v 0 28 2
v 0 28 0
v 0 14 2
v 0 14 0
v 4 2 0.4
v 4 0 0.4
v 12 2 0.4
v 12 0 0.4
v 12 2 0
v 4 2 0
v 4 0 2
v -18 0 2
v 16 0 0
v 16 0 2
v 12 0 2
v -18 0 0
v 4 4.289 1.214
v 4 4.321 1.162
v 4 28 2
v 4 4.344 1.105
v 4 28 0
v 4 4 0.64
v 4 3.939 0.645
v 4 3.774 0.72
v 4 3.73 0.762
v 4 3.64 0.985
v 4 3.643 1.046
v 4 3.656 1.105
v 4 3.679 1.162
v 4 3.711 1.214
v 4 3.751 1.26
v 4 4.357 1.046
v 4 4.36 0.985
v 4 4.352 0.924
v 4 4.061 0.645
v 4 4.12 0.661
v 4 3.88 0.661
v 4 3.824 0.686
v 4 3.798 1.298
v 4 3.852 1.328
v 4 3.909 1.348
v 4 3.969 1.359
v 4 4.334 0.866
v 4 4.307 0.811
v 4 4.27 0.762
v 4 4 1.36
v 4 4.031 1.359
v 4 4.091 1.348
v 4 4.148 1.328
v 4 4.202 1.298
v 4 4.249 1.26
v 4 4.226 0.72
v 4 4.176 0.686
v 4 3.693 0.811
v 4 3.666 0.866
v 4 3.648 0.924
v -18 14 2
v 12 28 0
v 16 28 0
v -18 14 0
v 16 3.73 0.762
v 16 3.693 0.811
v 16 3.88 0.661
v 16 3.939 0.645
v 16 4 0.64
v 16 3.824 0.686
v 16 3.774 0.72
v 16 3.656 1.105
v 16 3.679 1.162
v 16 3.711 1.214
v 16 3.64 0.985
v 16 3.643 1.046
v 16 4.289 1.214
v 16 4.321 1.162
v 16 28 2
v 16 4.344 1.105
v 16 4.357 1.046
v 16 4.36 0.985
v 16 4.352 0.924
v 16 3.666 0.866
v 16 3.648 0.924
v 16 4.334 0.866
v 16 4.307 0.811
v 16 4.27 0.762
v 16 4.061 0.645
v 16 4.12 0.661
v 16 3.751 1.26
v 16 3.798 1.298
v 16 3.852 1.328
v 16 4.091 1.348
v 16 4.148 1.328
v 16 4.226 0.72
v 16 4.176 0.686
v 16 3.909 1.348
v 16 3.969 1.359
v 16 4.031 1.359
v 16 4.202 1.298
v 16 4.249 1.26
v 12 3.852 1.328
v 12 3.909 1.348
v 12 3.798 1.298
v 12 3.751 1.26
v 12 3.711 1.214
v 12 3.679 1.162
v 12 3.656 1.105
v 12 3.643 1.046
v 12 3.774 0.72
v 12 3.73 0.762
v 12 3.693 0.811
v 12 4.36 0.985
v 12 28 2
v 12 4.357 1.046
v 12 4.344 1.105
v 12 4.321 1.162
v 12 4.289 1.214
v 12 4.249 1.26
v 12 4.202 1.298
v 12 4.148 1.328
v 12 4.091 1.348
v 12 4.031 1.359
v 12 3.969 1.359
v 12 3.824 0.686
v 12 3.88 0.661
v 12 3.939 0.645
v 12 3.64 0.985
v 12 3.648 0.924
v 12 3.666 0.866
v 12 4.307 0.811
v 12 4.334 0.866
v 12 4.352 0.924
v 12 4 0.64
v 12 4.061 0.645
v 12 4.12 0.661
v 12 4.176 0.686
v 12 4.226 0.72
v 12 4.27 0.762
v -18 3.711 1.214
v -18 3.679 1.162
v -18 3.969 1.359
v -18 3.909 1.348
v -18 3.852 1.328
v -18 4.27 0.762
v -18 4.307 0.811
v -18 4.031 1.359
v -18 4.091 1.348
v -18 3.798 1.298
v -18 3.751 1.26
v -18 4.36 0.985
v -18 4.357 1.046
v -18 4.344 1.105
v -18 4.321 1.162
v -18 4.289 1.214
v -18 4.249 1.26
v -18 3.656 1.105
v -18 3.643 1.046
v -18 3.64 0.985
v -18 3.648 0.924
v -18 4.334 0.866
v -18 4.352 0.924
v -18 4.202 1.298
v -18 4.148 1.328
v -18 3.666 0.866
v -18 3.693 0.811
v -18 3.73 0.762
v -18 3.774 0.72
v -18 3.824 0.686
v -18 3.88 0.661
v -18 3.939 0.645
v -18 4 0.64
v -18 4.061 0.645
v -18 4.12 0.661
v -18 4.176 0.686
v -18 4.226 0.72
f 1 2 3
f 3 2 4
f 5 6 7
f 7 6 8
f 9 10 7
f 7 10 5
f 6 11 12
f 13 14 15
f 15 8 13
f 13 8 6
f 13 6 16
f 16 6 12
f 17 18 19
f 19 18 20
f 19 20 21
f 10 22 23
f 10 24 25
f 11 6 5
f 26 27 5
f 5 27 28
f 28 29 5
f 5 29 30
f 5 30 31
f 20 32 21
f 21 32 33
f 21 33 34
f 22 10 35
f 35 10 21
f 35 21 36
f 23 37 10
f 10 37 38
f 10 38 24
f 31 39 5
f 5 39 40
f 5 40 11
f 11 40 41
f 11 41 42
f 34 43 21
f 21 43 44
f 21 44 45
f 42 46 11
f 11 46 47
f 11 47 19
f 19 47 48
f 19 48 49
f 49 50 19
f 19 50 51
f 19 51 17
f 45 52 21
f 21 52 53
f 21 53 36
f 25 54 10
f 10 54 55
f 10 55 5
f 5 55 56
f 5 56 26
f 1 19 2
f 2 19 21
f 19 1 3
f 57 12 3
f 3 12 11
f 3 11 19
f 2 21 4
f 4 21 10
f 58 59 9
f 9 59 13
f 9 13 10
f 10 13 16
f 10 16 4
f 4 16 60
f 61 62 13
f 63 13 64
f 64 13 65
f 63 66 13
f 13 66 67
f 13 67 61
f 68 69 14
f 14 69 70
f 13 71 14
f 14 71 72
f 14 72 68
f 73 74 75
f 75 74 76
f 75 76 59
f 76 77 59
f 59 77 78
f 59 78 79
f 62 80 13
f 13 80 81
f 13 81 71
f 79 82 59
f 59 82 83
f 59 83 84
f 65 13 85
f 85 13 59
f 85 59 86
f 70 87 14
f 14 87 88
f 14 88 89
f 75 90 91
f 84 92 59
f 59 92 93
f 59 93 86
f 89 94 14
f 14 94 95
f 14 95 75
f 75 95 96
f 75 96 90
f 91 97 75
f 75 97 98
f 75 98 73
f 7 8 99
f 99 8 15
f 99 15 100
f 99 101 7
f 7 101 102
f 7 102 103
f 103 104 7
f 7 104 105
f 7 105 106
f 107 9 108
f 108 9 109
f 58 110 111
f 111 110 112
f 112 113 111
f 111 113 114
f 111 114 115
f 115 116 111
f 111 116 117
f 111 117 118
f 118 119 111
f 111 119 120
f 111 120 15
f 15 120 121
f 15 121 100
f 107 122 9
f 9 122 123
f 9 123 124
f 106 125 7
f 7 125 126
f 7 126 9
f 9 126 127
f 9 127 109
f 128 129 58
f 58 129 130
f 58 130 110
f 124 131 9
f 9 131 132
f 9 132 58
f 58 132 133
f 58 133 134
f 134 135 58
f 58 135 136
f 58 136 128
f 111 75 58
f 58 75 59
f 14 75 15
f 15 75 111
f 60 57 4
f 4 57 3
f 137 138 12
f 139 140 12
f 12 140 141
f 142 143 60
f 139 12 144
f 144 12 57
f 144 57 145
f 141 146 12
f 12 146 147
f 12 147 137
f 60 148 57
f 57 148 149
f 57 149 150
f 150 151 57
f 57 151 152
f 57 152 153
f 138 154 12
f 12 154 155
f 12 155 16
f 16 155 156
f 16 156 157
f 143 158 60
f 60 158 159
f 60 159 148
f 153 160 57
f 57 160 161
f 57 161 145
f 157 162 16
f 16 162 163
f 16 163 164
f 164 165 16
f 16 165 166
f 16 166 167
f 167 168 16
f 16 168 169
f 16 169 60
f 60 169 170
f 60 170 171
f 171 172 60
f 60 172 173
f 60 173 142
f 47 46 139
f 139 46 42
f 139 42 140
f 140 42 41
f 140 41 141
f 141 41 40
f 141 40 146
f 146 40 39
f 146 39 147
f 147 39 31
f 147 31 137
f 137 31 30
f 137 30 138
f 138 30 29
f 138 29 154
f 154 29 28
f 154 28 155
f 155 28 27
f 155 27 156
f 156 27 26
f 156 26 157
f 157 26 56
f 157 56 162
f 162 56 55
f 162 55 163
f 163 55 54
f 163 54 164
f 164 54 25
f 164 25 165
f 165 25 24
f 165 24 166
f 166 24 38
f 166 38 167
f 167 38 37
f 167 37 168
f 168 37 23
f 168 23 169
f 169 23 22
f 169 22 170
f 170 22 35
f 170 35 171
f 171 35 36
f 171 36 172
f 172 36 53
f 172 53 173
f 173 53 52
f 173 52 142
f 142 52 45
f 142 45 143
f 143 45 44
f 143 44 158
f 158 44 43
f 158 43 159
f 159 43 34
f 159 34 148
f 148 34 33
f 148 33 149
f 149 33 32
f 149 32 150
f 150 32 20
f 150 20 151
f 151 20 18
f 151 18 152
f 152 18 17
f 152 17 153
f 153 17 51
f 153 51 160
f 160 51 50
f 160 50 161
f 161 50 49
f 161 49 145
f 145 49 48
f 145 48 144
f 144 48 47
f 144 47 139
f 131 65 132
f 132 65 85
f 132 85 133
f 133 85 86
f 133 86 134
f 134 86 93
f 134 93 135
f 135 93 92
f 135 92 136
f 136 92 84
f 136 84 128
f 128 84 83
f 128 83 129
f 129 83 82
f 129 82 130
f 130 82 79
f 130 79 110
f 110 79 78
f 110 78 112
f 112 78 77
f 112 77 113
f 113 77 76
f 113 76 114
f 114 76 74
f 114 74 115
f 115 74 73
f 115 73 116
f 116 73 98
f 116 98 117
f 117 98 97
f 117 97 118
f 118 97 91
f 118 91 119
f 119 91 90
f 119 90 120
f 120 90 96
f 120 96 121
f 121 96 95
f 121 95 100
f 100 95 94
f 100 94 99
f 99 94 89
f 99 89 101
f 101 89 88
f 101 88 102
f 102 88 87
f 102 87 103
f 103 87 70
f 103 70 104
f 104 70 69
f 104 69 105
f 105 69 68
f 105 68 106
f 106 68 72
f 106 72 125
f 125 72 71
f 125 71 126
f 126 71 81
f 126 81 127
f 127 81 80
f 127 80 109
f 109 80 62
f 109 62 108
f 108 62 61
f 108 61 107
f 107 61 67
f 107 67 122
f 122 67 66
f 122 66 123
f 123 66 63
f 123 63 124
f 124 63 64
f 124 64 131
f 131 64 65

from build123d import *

# Parameters (mm, degrees)
SKETCH2_W             = 4
SKETCH2_H             = 28
BOSS_EXTRUDE1_DEPTH   = 2
BOSS_EXTRUDE1_2_DEPTH = 2
SKETCH3_W             = 16
SKETCH3_H             = 2
BOSS_EXTRUDE2_DEPTH   = 0.4
SKETCH7_W             = 2
SKETCH7_H             = 14
BOSS_EXTRUDE3_DEPTH   = 18
SKETCH6_R             = 0.36
CUT_EXTRUDE1_DEPTH    = 35


with BuildPart() as part:
    # Sketch2 → Boss-Extrude1 (new body)
    with BuildSketch(Plane.XY):
        with Locations((2, 14)):
            Rectangle(SKETCH2_W, SKETCH2_H)
    extrude(amount=BOSS_EXTRUDE1_DEPTH)



with BuildPart() as body_2:
    # Sketch2 → Boss-Extrude1 2 (new body)
    with BuildSketch(Plane.XY):
        with Locations((14, 14)):
            Rectangle(SKETCH2_W, SKETCH2_H)
    extrude(amount=BOSS_EXTRUDE1_2_DEPTH)


with BuildPart() as part_1:
    add(part.part)

    add(body_2.part)  # Boss-Extrude2 merges body 2
    # Sketch3 → Boss-Extrude2 (add)
    with BuildSketch(Plane(origin=(0, 0, 0), x_dir=(-1, 0, 0), z_dir=(0, 0, -1))):
        with Locations((-8, 1)):
            Rectangle(SKETCH3_W, SKETCH3_H)
    extrude(amount=-BOSS_EXTRUDE2_DEPTH)

    # Sketch7 → Boss-Extrude3 (add)
    with BuildSketch(Plane.ZY):
        with Locations((1, 7)):
            Rectangle(SKETCH7_W, SKETCH7_H)
    extrude(amount=BOSS_EXTRUDE3_DEPTH)

    # Sketch6 → Cut-Extrude1 (cut, through all)
    with BuildSketch(Plane(origin=(16, 0, 0), x_dir=(0, 0, -1), z_dir=(1, 0, 0))):
        with Locations((-1, 4)):
            Circle(SKETCH6_R)
    extrude(amount=-CUT_EXTRUDE1_DEPTH, mode=Mode.SUBTRACT)


solid = part_1.part
